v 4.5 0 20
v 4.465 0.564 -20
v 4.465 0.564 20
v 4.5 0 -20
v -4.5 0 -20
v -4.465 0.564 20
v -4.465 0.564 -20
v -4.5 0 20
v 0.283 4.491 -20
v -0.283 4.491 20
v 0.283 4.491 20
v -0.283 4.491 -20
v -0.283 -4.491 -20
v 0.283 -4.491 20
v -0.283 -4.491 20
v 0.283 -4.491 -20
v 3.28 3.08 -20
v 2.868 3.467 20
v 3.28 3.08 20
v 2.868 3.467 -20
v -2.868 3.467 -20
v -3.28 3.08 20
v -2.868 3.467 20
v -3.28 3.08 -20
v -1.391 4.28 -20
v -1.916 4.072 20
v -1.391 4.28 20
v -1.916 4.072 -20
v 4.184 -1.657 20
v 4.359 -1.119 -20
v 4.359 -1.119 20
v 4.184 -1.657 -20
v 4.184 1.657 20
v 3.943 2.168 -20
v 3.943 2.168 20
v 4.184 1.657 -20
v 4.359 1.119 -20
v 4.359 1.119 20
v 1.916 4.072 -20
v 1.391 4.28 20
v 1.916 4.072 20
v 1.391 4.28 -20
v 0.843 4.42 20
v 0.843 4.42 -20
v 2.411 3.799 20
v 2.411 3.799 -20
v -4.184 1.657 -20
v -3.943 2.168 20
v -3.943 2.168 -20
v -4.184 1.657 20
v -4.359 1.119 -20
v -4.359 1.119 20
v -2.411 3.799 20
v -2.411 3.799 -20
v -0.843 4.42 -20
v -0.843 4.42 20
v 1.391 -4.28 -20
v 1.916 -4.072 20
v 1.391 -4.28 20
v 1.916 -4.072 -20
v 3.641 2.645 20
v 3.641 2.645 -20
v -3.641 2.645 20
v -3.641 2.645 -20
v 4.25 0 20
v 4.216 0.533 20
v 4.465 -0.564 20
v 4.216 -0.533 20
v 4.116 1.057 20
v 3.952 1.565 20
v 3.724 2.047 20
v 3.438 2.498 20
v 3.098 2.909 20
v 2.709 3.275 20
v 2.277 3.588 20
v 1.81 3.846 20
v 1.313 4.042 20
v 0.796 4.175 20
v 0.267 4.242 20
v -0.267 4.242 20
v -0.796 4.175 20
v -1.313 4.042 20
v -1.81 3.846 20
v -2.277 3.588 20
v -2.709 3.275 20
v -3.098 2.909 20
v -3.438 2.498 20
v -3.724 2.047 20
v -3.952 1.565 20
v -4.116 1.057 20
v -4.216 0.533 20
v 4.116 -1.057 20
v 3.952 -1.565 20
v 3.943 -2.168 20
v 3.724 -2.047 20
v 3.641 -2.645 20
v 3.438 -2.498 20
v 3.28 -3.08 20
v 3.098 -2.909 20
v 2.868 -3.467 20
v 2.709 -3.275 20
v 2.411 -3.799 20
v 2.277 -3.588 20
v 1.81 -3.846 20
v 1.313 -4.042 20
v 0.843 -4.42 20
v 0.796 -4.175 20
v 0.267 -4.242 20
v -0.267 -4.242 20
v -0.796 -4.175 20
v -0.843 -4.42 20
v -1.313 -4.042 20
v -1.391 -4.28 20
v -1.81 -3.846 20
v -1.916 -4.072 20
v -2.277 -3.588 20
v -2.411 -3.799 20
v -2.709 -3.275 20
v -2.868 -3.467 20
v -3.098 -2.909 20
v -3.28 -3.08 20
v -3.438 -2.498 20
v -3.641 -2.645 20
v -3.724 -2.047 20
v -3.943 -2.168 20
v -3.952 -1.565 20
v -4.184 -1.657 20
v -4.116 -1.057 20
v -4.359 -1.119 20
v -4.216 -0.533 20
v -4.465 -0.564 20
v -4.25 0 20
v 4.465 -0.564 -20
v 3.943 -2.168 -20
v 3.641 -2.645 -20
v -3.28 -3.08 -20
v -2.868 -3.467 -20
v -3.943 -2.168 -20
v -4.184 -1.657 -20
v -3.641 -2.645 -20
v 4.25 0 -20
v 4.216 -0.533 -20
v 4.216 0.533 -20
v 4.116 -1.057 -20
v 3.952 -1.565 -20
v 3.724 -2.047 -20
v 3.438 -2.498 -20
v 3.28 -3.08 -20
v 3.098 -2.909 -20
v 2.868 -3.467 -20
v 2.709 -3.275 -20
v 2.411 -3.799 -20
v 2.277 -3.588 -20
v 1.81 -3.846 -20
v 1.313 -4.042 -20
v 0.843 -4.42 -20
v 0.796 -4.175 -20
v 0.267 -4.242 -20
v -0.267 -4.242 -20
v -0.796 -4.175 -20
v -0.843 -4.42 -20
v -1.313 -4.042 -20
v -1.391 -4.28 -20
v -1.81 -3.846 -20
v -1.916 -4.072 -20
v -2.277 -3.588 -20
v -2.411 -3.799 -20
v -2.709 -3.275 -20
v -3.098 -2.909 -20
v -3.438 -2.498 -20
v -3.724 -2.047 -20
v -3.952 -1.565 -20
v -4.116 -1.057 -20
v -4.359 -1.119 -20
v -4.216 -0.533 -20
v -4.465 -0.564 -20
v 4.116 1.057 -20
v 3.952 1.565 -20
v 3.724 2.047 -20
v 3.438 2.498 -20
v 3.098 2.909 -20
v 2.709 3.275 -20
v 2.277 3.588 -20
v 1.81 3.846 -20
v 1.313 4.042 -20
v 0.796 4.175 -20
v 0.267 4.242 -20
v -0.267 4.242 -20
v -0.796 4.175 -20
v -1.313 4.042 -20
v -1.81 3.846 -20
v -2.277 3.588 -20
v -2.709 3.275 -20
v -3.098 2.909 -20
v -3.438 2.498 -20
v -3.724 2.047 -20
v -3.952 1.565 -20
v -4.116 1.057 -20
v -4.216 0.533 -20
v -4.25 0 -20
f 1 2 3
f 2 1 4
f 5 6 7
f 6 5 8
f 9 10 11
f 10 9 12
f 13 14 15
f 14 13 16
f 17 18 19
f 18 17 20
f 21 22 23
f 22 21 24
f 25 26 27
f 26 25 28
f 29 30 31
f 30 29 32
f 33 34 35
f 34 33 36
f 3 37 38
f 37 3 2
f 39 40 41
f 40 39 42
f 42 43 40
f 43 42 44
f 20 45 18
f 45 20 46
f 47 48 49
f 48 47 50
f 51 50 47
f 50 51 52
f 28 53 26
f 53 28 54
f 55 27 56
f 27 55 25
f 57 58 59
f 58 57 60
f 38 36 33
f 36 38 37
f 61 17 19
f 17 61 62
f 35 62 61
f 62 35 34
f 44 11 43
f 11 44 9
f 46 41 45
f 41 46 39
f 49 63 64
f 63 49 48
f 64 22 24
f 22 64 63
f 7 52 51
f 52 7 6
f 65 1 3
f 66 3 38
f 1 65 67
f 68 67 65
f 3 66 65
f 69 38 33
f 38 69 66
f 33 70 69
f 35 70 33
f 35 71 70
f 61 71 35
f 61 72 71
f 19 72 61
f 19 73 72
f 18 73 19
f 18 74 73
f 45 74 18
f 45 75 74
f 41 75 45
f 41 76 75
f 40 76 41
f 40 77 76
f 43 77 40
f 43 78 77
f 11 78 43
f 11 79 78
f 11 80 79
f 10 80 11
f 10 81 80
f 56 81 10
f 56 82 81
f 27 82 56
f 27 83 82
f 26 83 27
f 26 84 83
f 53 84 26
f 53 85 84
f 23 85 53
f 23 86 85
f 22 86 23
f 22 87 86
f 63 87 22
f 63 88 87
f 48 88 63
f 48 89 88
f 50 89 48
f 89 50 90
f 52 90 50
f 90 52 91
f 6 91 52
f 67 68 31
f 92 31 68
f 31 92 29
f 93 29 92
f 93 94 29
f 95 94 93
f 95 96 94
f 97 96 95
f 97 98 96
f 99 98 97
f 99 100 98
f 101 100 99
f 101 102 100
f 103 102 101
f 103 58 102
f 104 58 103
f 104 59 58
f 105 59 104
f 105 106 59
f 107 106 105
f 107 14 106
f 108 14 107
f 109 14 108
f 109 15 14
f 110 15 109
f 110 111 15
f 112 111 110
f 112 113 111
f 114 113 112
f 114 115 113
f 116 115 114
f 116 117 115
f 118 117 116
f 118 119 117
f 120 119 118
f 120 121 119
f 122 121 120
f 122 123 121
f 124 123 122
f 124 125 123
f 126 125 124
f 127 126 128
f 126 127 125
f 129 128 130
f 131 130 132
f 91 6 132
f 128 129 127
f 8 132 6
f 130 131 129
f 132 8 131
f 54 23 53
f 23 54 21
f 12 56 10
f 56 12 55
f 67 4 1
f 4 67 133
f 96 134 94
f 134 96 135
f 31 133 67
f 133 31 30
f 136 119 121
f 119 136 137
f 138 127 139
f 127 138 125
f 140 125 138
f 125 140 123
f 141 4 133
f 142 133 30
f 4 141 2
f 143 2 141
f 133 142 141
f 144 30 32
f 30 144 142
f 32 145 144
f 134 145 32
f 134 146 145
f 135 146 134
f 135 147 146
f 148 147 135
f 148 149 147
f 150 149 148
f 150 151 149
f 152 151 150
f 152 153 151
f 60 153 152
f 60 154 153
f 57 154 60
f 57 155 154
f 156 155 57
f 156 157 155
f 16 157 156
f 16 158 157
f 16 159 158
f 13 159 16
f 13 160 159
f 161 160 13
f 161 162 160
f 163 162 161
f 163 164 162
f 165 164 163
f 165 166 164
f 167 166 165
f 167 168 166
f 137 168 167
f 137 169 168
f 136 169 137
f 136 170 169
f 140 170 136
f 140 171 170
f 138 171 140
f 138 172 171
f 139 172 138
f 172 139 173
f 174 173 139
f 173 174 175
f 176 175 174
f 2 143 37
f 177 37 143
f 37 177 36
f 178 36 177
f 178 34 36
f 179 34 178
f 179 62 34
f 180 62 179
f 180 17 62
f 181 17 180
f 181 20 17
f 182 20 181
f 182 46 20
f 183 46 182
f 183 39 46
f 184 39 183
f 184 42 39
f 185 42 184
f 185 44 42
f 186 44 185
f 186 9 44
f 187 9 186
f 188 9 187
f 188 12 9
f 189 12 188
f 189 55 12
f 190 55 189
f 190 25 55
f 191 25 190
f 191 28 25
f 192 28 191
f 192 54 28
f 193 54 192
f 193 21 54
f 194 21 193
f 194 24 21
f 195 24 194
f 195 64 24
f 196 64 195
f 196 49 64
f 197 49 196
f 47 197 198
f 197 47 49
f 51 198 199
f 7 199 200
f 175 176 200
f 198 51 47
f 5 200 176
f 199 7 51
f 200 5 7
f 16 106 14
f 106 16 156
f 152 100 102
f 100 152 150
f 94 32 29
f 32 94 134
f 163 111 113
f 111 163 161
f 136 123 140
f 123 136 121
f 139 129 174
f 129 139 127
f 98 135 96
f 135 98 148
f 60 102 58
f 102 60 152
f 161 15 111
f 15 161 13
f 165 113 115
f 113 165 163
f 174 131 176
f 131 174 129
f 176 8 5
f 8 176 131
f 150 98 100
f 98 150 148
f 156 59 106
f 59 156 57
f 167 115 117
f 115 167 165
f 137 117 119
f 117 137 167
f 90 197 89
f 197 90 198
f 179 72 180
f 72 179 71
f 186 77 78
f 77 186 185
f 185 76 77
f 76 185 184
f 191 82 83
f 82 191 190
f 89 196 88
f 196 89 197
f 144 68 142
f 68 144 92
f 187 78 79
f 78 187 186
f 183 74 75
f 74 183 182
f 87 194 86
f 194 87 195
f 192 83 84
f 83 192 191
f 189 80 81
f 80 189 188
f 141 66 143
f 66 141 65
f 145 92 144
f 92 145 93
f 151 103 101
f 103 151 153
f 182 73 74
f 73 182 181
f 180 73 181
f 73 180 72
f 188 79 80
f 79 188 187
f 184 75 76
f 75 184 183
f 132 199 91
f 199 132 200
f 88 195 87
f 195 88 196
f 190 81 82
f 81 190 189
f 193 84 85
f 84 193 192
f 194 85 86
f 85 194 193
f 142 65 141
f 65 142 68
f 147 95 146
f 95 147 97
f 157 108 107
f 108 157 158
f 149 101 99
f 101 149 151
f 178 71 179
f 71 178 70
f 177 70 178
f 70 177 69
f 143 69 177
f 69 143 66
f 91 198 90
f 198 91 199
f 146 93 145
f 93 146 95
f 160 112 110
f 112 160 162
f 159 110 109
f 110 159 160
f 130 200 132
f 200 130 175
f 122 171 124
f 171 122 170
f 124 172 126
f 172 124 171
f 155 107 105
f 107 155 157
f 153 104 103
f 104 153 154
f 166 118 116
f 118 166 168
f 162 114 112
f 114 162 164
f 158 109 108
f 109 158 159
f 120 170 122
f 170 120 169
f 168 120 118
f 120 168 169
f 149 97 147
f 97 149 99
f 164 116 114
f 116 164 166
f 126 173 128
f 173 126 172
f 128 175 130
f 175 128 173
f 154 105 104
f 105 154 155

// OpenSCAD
$fn = 50;


difference() {
	union() {
		translate(v = [0, 0, -20.0000000000]) {
			cylinder(h = 40, r = 4.5000000000);
		}
	}
	union() {
		translate(v = [0, 0, -100.0000000000]) {
			cylinder(h = 200, r = 4.2500000000);
		}
	}
}
